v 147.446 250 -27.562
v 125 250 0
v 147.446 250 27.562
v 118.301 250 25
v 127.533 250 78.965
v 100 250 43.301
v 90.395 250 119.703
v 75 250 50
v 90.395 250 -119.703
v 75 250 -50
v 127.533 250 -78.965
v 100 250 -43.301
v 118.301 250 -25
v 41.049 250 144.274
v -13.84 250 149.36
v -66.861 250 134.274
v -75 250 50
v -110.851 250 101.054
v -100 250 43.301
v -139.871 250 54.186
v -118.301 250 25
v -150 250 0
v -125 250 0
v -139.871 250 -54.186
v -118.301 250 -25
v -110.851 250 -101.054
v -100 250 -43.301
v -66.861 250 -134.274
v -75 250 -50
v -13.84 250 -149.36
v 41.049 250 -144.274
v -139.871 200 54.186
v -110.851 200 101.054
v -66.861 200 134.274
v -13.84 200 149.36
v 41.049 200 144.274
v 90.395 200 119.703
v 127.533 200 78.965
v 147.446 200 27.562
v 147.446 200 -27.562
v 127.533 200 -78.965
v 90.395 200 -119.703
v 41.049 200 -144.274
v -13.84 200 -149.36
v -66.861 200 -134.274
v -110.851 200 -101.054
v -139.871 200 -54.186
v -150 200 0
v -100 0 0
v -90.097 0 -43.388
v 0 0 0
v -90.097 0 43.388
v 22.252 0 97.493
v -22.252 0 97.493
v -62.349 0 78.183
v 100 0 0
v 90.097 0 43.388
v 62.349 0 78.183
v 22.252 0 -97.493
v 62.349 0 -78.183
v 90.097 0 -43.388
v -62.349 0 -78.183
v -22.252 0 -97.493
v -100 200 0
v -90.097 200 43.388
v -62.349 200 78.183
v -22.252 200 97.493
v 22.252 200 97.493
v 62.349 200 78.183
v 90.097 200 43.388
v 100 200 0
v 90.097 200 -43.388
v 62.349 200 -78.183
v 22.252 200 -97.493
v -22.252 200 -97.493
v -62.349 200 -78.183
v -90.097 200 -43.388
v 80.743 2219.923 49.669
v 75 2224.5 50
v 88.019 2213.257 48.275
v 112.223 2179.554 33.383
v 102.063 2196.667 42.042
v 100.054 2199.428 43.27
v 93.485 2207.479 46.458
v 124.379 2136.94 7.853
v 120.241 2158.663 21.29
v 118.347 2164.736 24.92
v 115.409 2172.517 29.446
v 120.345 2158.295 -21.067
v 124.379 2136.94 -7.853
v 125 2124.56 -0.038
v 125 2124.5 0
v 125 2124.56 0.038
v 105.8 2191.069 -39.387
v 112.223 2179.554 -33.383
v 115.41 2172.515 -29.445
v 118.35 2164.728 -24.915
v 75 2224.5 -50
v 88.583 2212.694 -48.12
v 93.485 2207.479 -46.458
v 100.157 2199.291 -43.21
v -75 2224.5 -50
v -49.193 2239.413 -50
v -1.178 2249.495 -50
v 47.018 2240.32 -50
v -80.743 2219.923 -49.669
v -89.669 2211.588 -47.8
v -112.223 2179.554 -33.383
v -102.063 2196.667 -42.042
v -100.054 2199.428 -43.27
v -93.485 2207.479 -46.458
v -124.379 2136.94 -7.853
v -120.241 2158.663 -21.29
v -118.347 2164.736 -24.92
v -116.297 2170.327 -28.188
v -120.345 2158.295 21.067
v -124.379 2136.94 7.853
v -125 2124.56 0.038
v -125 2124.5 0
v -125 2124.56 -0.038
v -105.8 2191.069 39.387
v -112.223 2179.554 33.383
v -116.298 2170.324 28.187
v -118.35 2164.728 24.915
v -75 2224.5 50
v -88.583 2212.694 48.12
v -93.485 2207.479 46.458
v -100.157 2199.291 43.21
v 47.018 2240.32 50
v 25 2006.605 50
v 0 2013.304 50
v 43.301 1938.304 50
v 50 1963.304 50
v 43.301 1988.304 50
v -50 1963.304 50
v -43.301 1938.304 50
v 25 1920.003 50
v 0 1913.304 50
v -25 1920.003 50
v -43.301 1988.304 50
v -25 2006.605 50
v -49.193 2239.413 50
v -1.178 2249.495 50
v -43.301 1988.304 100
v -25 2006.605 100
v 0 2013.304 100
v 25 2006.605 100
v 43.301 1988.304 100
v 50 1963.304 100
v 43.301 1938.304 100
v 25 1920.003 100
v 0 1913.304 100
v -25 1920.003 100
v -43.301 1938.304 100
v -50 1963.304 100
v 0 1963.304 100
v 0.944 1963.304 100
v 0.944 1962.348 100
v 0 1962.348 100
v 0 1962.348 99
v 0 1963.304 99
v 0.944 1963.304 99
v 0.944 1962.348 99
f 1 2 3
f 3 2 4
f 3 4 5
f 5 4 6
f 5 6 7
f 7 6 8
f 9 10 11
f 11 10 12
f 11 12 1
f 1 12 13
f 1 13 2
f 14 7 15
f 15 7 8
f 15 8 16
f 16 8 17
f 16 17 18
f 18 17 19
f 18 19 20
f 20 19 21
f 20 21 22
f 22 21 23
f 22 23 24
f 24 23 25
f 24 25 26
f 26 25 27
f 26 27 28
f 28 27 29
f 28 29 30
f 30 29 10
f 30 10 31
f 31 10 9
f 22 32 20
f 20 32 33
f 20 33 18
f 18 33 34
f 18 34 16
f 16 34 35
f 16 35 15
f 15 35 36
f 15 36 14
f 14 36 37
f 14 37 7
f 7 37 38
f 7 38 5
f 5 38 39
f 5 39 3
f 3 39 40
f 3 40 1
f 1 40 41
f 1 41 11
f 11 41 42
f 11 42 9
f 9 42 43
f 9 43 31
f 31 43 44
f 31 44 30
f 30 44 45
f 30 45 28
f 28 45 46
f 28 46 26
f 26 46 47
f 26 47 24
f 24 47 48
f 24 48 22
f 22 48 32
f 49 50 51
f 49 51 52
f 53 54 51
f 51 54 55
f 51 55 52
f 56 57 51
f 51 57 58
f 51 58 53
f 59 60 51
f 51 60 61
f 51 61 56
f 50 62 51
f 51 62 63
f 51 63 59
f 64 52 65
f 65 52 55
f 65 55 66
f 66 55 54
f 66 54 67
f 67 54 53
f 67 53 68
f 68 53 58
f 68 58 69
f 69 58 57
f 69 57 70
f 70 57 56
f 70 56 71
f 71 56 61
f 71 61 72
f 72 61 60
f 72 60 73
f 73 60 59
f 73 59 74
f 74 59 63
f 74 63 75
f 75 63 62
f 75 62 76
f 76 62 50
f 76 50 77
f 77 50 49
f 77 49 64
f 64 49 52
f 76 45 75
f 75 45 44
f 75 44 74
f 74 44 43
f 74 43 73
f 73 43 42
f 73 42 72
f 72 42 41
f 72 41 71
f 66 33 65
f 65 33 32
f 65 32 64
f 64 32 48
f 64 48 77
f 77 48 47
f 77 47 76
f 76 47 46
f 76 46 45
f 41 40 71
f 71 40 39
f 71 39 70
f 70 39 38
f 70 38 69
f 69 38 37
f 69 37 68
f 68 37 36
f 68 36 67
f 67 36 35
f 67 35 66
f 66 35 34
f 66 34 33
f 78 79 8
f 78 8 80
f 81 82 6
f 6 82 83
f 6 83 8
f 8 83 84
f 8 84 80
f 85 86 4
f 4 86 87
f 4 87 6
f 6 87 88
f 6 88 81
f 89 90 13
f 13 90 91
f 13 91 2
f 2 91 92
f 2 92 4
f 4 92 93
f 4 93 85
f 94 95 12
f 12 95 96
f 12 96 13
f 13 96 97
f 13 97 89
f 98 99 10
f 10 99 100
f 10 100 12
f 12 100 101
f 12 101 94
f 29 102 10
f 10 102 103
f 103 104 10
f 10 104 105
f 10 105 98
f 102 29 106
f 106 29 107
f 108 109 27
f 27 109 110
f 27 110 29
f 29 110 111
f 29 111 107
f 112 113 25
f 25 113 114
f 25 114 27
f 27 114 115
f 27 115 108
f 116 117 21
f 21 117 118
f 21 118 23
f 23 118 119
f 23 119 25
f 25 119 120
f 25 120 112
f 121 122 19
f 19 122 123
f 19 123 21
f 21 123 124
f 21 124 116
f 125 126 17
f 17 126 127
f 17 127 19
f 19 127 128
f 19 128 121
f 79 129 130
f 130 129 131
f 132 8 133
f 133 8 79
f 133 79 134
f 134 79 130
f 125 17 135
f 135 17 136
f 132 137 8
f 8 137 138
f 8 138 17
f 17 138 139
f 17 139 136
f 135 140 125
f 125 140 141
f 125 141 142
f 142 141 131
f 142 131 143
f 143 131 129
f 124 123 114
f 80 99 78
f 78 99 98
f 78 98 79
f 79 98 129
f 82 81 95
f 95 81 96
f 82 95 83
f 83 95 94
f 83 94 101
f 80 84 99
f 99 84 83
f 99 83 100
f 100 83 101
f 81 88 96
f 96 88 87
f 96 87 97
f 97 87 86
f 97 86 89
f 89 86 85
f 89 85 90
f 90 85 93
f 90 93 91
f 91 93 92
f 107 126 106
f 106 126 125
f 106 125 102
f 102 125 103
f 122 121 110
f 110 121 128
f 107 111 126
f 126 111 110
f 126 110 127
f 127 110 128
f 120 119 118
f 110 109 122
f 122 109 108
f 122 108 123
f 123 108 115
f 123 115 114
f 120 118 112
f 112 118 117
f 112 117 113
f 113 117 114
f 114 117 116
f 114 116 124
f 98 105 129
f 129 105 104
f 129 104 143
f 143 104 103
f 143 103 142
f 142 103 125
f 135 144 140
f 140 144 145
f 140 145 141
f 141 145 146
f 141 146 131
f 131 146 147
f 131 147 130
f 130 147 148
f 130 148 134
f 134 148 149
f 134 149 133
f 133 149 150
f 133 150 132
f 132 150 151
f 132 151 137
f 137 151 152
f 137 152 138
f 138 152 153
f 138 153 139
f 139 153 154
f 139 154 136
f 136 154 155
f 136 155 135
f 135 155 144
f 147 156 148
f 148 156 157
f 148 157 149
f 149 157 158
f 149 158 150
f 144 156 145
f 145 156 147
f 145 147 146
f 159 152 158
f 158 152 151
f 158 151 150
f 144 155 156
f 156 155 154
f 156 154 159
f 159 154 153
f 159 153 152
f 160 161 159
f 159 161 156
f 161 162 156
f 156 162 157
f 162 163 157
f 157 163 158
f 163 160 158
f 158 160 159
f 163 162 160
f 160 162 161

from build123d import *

# Parameters (mm, degrees)
BOSS_EXTRUDE1_DEPTH = 2000
CUT_EXTRUDE1_DEPTH  = 100
SKETCH9_R           = 50
BOSS_EXTRUDE2_DEPTH = 50
SKETCH10_W          = 0.943556428
SKETCH10_H          = 0.956350413
CUT_EXTRUDE2_DEPTH  = 1


with BuildPart() as part:
    # Sketch4 → Revolve1 (revolve)
    with BuildSketch(Plane.XY):
        Polygon((0, 250), (0, 0), (100, 0), (100, 200), (150, 200), (150, 250), align=None)
    revolve(axis=Axis((0, 250, 0), (0, -1, 0)))

    # Sketch7 → Boss-Extrude1 (add)
    with BuildSketch(Plane(origin=(0, 250, 0), x_dir=(1, 0, 0), z_dir=(0, 1, 0))):
        with BuildLine():
            Line((-75, 50), (75, 50))
            ThreePointArc((75, 50), (125, 0), (75, -50))
            Line((75, -50), (-75, -50))
            ThreePointArc((-75, -50), (-125, 0), (-75, 50))
        make_face()
    extrude(amount=BOSS_EXTRUDE1_DEPTH)

    # Sketch8 → Cut-Extrude1 (cut)
    with BuildSketch(Plane.XY.offset(50)):
        with BuildLine():
            Line((-125, 2124.5), (-125, 2250))
            Line((-125, 2250), (125, 2250))
            Line((125, 2250), (125, 2124.5))
            ThreePointArc((125, 2124.5), (0, 2249.5), (-125, 2124.5))
        make_face()
    extrude(amount=-CUT_EXTRUDE1_DEPTH, mode=Mode.SUBTRACT)

    # Sketch9 → Boss-Extrude2 (add)
    with BuildSketch(Plane.XY.offset(50)):
        with Locations((0, 1963.304019878)):
            Circle(SKETCH9_R)
    extrude(amount=BOSS_EXTRUDE2_DEPTH)

    # Sketch10 → Cut-Extrude2 (cut)
    with BuildSketch(Plane.XY.offset(100)):
        with Locations((0.471778214, 1962.825844672)):
            Rectangle(SKETCH10_W, SKETCH10_H)
    extrude(amount=-CUT_EXTRUDE2_DEPTH, mode=Mode.SUBTRACT)


solid = part.part
